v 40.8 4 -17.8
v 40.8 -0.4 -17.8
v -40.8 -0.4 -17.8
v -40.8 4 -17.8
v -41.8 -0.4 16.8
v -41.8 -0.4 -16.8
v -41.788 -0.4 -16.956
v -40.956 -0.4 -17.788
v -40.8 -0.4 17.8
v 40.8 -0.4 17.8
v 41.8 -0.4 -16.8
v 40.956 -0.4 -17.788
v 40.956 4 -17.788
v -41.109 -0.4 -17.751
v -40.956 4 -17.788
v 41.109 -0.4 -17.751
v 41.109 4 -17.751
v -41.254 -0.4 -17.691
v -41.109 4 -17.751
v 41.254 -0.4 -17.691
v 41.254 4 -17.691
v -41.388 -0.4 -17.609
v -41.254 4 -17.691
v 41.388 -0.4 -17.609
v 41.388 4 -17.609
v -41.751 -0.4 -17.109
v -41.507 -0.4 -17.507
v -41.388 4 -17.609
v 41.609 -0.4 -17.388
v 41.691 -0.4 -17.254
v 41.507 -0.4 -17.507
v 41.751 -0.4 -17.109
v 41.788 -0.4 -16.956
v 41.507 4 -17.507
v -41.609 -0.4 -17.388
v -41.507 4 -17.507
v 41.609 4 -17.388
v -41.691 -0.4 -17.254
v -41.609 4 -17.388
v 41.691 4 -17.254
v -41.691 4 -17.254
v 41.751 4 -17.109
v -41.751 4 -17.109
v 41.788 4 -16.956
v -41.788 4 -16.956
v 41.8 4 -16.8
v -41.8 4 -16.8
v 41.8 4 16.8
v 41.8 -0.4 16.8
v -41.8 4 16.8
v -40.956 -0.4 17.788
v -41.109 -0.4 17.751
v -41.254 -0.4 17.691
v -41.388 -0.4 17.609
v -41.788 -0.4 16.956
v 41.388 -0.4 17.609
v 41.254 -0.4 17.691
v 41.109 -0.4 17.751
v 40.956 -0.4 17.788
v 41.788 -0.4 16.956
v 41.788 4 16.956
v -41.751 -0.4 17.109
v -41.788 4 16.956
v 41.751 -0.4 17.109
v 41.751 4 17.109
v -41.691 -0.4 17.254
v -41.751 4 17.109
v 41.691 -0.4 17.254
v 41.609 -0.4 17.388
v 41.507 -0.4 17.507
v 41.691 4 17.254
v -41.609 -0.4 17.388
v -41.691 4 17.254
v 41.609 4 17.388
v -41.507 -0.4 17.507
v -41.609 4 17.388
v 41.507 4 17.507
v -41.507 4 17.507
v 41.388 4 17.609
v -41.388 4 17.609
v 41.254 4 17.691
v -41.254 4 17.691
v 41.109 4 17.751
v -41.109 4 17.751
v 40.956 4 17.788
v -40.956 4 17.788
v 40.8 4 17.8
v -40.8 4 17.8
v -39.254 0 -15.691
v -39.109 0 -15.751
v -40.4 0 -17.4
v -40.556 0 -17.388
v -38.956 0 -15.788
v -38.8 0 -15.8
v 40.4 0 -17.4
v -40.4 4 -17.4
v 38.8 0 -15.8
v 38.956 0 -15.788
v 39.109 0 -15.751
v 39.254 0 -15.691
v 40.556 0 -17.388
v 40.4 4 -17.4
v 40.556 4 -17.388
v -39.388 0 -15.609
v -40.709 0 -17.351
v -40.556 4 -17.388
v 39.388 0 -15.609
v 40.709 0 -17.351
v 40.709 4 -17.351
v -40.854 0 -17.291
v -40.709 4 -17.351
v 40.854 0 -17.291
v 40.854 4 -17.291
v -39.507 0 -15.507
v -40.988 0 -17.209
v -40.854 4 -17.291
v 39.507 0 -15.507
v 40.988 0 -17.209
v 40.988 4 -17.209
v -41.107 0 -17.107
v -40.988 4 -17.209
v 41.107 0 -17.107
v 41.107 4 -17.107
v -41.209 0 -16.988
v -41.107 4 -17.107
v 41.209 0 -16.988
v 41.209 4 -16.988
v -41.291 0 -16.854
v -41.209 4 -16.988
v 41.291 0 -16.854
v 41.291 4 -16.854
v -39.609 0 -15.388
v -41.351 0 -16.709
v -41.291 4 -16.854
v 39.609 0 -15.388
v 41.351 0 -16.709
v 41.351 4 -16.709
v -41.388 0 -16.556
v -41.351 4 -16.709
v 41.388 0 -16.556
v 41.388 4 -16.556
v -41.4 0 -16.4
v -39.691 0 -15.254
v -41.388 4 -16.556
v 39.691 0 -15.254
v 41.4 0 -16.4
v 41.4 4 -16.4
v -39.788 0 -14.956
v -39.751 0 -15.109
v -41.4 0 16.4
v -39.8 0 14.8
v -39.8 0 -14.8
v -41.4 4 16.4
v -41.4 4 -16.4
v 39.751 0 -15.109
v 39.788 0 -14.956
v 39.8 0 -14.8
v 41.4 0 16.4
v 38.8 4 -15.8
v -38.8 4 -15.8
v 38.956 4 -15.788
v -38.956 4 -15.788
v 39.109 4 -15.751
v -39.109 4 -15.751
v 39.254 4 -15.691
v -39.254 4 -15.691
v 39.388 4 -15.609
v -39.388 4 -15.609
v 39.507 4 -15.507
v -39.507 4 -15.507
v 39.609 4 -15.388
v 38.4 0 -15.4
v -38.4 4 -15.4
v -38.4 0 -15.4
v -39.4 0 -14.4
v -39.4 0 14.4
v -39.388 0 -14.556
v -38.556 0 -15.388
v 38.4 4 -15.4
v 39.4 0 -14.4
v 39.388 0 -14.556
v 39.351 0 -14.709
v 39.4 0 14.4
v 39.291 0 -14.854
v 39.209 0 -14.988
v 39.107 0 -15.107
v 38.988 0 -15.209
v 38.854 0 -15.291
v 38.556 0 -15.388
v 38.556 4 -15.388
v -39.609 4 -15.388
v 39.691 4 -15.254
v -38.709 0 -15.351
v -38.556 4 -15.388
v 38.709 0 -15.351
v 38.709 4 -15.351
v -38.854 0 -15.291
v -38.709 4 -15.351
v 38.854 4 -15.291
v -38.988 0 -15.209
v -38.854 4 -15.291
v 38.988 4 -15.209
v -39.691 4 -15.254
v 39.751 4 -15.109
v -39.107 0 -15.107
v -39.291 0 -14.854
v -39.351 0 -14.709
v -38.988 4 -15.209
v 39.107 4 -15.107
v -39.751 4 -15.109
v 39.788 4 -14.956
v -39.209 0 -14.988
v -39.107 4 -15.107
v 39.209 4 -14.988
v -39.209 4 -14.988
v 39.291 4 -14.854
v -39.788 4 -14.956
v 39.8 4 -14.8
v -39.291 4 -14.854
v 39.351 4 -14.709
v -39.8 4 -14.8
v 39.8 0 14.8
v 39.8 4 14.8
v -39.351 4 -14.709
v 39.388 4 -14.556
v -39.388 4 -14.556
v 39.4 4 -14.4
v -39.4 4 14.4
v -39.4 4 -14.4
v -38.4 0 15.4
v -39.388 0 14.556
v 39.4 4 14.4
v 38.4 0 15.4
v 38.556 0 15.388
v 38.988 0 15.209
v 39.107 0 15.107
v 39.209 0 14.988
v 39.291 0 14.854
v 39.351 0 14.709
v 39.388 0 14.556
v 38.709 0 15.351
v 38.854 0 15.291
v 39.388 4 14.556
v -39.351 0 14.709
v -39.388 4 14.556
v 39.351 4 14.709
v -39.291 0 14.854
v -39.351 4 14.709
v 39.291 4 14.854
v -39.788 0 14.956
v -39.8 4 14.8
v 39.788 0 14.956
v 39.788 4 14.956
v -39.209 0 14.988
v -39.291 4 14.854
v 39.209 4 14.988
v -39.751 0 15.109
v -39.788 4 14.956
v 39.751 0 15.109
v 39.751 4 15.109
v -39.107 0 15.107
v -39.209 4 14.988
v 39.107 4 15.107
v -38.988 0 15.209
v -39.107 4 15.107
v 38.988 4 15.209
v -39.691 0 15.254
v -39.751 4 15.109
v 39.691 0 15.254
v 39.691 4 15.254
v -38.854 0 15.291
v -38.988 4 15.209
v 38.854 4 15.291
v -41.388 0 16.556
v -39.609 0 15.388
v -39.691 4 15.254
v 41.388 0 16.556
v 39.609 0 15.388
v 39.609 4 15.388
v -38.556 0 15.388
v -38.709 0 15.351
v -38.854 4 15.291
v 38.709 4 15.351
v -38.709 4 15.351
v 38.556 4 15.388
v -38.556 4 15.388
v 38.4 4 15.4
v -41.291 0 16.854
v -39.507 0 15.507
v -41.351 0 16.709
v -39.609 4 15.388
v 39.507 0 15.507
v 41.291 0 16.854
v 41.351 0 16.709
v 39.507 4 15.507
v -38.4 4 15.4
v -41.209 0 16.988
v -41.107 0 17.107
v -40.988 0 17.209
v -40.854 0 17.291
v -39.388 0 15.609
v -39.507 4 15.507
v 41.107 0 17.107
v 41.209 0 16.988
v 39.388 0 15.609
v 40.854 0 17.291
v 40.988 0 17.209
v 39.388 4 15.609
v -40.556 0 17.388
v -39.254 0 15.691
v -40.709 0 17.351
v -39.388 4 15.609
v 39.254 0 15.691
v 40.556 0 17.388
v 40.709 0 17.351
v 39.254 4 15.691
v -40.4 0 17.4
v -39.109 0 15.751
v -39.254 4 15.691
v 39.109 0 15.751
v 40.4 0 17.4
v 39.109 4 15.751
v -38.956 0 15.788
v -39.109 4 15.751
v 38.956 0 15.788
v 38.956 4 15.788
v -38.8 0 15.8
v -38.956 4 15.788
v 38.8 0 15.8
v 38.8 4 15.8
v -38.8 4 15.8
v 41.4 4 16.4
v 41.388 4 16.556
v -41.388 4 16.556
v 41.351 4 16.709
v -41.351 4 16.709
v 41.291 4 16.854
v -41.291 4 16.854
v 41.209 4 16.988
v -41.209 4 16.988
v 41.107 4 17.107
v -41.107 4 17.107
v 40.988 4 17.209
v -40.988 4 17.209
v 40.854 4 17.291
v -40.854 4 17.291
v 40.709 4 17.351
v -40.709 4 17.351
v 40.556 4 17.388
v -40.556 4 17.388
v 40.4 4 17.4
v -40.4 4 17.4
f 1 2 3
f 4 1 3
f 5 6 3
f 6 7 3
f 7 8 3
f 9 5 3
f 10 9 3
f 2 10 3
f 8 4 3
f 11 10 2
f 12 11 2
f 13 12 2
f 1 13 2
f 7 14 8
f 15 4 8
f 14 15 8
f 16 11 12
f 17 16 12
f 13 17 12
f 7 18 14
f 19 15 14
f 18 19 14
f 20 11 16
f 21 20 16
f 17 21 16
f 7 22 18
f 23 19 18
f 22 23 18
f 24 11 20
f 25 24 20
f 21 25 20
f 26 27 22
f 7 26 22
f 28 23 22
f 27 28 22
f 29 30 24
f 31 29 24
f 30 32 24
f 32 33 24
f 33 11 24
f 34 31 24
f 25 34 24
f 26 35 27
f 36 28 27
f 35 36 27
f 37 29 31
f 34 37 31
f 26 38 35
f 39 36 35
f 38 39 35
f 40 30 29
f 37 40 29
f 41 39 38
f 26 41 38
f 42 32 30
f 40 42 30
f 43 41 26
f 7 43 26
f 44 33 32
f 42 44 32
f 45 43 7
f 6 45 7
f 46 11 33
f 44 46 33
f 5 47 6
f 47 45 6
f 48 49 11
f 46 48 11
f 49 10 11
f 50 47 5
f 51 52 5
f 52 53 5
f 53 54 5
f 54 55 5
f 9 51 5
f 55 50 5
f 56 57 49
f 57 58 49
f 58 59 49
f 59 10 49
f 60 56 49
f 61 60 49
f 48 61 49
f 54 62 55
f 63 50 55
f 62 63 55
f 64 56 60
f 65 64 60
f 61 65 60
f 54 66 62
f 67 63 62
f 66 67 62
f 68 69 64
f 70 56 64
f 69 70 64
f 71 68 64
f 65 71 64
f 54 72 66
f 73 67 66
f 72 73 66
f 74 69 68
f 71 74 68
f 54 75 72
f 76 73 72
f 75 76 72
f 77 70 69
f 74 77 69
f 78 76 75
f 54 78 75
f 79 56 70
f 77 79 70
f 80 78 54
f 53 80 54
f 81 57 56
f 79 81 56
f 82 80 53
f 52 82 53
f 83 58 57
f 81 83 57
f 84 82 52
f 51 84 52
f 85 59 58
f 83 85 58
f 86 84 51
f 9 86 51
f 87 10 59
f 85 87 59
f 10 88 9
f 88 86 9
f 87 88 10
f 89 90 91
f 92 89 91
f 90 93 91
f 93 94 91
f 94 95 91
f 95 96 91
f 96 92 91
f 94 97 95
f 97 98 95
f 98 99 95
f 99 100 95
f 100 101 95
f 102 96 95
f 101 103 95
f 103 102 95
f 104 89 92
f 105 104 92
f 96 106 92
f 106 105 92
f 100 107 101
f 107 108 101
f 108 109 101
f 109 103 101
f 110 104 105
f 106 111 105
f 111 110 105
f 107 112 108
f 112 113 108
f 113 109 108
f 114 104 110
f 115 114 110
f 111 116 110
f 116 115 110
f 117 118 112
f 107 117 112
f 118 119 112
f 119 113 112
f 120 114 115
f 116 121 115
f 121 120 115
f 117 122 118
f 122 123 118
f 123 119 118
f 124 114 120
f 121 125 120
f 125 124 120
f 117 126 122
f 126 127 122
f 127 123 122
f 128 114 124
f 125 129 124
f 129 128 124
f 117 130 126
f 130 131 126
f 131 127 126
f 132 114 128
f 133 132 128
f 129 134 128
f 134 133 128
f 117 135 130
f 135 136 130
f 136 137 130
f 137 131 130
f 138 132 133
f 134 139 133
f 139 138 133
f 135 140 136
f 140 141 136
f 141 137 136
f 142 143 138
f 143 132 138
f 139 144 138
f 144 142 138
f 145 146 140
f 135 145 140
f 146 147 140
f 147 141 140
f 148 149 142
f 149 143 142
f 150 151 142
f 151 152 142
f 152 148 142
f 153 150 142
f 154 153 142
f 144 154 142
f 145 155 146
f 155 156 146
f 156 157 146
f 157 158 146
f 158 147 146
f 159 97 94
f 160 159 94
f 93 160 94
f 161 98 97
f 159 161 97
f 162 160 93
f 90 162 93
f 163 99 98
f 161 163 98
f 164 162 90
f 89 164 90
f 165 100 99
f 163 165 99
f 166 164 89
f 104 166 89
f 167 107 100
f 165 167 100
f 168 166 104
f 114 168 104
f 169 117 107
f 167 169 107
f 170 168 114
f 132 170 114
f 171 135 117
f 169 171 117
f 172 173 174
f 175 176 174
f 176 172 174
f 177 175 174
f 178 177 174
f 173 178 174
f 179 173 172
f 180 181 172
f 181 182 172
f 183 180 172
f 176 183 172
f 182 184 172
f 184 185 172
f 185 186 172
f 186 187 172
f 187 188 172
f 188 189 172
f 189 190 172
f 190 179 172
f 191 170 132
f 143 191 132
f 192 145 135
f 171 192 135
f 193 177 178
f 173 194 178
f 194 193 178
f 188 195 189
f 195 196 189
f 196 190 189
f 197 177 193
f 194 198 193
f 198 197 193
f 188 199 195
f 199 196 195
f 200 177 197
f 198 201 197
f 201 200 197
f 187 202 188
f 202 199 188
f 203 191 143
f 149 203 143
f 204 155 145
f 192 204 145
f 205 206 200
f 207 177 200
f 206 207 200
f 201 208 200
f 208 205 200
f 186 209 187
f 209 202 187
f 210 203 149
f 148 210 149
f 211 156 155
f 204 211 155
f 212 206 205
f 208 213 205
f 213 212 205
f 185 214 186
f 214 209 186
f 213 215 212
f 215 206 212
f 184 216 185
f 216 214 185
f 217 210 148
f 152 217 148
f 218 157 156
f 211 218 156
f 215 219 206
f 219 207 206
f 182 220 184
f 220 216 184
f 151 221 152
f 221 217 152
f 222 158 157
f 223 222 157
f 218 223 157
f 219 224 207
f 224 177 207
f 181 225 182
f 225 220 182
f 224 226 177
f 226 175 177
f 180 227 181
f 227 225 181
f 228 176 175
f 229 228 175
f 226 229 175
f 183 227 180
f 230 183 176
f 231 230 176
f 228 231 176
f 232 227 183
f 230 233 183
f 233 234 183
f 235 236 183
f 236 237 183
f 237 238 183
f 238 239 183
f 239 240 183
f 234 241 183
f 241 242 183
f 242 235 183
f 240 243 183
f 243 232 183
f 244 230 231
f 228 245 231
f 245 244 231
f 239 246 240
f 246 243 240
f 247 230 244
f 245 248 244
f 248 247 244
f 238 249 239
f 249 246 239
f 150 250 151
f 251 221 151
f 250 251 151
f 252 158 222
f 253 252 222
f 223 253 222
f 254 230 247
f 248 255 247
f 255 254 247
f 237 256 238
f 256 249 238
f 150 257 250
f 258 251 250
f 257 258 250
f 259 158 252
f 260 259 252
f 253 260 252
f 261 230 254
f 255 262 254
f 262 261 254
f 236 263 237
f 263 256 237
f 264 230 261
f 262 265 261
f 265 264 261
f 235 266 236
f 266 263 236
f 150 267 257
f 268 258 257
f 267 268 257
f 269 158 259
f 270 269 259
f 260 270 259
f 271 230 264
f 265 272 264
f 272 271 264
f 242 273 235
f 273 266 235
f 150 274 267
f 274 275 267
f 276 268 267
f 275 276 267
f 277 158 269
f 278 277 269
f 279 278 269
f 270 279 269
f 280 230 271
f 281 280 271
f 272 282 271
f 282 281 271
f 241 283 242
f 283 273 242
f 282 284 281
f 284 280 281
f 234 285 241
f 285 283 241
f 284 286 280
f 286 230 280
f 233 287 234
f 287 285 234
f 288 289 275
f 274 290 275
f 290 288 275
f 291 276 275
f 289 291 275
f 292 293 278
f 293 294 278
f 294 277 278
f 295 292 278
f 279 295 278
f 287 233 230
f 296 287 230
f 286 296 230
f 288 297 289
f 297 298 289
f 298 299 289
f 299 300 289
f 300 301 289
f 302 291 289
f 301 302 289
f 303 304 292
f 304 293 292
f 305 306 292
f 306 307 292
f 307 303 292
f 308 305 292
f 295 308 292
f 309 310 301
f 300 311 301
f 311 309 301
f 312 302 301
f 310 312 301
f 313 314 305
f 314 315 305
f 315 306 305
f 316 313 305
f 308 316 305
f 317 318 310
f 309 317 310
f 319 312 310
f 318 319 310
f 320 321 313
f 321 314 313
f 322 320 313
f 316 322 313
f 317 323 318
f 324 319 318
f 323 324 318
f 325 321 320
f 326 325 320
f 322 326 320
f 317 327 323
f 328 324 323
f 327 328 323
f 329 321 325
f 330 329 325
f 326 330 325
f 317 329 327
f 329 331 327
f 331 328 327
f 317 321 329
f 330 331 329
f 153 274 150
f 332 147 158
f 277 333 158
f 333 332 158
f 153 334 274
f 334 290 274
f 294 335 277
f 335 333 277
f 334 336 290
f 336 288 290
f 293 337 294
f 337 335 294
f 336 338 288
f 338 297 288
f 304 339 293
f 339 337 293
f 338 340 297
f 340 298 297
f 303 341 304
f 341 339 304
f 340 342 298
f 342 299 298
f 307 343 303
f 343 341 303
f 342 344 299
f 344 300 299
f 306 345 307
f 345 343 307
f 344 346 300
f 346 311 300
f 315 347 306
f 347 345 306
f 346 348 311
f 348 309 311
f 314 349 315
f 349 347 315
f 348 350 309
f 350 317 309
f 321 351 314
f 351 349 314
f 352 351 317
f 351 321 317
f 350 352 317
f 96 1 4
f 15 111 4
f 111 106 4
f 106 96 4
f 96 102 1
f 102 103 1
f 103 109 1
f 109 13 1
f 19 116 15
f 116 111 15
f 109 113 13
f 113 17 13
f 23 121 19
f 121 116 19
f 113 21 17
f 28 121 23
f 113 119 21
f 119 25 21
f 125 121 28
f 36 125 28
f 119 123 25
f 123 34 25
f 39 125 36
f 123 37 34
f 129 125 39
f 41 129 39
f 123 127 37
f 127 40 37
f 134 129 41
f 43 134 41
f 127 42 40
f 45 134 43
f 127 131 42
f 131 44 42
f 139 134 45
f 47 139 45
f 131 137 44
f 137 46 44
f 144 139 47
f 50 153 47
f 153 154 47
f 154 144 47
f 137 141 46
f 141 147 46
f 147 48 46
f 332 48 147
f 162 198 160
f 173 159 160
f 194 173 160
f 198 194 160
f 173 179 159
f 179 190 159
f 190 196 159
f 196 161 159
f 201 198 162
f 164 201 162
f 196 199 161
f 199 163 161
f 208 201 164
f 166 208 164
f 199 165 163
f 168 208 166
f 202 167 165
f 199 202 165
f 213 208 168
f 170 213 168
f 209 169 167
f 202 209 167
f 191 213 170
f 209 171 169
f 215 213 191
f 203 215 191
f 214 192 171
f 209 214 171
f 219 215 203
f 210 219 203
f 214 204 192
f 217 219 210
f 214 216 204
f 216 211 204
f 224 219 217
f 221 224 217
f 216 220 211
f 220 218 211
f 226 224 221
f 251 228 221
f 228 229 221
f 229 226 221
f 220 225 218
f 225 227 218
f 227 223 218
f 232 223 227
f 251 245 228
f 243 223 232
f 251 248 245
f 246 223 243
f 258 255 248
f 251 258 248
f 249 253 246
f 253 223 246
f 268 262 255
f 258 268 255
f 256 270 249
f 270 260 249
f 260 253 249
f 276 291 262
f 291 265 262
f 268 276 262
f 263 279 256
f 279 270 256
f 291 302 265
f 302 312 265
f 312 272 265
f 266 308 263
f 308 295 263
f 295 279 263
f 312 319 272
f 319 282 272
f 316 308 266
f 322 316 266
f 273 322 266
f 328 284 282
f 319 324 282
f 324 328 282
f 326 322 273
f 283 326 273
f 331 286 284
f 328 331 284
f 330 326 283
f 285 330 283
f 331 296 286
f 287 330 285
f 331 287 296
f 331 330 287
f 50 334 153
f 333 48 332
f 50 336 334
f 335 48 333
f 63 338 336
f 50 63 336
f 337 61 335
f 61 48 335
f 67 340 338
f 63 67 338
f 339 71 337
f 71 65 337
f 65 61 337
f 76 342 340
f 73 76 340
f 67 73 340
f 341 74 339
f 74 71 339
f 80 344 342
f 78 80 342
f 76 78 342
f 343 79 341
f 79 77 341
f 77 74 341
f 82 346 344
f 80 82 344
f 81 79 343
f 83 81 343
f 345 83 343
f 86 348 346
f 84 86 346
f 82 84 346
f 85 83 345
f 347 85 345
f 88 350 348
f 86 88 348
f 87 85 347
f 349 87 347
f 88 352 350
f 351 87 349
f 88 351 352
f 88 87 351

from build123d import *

# Parameters (mm, degrees)
ESBO_O1_W                = 82.8
ESBO_O1_H                = 34.8
RESSALTO_EXTRUS_O1_DEPTH = 4
CASCA2_T                 = 0.4
ESBO_O2_W                = 79.6
ESBO_O2_H                = 31.6
ESBO_O2_W_2              = 78.8
ESBO_O2_H_2              = 30.8
RESSALTO_EXTRUS_O2_DEPTH = 4
FILETE1_R                = 1


with BuildPart() as part:
    # Esboço1 → Ressalto-extrusão1 (new body)
    with BuildSketch(Plane(origin=(0, 0, 0), x_dir=(1, 0, 0), z_dir=(0, 1, 0))):
        Rectangle(ESBO_O1_W, ESBO_O1_H)
    extrude(amount=RESSALTO_EXTRUS_O1_DEPTH)

    # Casca2
    casca2_openings = [part.faces().sort_by_distance(p)[0] for p in [
        (0, 4, 0),
    ]]
    offset(amount=CASCA2_T, openings=casca2_openings, kind=Kind.INTERSECTION)

    # Esboço2 → Ressalto-extrusão2 (add)
    with BuildSketch(Plane(origin=(0, 0, 0), x_dir=(1, 0, 0), z_dir=(0, 1, 0))):
        Rectangle(ESBO_O2_W, ESBO_O2_H)
        Rectangle(ESBO_O2_W_2, ESBO_O2_H_2, mode=Mode.SUBTRACT)
    extrude(amount=RESSALTO_EXTRUS_O2_DEPTH)

    # Filete1
    filete1_edges = [part.edges().sort_by_distance(p)[0] for p in [
        (-41.4, 2, -17.4),
        (-41.4, 2, 17.4),
        (41.4, 2, 17.4),
        (41.4, 2, -17.4),
        (39.8, 2, -15.8),
        (-39.8, 2, -15.8),
        (-39.8, 2, 15.8),
        (39.8, 2, 15.8),
        (-39.4, 2, -15.4),
        (-39.4, 2, 15.4),
        (39.4, 2, 15.4),
        (39.4, 2, -15.4),
        (-41.8, 1.8, -17.8),
        (41.8, 1.8, -17.8),
        (41.8, 1.8, 17.8),
        (-41.8, 1.8, 17.8),
    ]]
    fillet(filete1_edges, radius=FILETE1_R)


solid = part.part
